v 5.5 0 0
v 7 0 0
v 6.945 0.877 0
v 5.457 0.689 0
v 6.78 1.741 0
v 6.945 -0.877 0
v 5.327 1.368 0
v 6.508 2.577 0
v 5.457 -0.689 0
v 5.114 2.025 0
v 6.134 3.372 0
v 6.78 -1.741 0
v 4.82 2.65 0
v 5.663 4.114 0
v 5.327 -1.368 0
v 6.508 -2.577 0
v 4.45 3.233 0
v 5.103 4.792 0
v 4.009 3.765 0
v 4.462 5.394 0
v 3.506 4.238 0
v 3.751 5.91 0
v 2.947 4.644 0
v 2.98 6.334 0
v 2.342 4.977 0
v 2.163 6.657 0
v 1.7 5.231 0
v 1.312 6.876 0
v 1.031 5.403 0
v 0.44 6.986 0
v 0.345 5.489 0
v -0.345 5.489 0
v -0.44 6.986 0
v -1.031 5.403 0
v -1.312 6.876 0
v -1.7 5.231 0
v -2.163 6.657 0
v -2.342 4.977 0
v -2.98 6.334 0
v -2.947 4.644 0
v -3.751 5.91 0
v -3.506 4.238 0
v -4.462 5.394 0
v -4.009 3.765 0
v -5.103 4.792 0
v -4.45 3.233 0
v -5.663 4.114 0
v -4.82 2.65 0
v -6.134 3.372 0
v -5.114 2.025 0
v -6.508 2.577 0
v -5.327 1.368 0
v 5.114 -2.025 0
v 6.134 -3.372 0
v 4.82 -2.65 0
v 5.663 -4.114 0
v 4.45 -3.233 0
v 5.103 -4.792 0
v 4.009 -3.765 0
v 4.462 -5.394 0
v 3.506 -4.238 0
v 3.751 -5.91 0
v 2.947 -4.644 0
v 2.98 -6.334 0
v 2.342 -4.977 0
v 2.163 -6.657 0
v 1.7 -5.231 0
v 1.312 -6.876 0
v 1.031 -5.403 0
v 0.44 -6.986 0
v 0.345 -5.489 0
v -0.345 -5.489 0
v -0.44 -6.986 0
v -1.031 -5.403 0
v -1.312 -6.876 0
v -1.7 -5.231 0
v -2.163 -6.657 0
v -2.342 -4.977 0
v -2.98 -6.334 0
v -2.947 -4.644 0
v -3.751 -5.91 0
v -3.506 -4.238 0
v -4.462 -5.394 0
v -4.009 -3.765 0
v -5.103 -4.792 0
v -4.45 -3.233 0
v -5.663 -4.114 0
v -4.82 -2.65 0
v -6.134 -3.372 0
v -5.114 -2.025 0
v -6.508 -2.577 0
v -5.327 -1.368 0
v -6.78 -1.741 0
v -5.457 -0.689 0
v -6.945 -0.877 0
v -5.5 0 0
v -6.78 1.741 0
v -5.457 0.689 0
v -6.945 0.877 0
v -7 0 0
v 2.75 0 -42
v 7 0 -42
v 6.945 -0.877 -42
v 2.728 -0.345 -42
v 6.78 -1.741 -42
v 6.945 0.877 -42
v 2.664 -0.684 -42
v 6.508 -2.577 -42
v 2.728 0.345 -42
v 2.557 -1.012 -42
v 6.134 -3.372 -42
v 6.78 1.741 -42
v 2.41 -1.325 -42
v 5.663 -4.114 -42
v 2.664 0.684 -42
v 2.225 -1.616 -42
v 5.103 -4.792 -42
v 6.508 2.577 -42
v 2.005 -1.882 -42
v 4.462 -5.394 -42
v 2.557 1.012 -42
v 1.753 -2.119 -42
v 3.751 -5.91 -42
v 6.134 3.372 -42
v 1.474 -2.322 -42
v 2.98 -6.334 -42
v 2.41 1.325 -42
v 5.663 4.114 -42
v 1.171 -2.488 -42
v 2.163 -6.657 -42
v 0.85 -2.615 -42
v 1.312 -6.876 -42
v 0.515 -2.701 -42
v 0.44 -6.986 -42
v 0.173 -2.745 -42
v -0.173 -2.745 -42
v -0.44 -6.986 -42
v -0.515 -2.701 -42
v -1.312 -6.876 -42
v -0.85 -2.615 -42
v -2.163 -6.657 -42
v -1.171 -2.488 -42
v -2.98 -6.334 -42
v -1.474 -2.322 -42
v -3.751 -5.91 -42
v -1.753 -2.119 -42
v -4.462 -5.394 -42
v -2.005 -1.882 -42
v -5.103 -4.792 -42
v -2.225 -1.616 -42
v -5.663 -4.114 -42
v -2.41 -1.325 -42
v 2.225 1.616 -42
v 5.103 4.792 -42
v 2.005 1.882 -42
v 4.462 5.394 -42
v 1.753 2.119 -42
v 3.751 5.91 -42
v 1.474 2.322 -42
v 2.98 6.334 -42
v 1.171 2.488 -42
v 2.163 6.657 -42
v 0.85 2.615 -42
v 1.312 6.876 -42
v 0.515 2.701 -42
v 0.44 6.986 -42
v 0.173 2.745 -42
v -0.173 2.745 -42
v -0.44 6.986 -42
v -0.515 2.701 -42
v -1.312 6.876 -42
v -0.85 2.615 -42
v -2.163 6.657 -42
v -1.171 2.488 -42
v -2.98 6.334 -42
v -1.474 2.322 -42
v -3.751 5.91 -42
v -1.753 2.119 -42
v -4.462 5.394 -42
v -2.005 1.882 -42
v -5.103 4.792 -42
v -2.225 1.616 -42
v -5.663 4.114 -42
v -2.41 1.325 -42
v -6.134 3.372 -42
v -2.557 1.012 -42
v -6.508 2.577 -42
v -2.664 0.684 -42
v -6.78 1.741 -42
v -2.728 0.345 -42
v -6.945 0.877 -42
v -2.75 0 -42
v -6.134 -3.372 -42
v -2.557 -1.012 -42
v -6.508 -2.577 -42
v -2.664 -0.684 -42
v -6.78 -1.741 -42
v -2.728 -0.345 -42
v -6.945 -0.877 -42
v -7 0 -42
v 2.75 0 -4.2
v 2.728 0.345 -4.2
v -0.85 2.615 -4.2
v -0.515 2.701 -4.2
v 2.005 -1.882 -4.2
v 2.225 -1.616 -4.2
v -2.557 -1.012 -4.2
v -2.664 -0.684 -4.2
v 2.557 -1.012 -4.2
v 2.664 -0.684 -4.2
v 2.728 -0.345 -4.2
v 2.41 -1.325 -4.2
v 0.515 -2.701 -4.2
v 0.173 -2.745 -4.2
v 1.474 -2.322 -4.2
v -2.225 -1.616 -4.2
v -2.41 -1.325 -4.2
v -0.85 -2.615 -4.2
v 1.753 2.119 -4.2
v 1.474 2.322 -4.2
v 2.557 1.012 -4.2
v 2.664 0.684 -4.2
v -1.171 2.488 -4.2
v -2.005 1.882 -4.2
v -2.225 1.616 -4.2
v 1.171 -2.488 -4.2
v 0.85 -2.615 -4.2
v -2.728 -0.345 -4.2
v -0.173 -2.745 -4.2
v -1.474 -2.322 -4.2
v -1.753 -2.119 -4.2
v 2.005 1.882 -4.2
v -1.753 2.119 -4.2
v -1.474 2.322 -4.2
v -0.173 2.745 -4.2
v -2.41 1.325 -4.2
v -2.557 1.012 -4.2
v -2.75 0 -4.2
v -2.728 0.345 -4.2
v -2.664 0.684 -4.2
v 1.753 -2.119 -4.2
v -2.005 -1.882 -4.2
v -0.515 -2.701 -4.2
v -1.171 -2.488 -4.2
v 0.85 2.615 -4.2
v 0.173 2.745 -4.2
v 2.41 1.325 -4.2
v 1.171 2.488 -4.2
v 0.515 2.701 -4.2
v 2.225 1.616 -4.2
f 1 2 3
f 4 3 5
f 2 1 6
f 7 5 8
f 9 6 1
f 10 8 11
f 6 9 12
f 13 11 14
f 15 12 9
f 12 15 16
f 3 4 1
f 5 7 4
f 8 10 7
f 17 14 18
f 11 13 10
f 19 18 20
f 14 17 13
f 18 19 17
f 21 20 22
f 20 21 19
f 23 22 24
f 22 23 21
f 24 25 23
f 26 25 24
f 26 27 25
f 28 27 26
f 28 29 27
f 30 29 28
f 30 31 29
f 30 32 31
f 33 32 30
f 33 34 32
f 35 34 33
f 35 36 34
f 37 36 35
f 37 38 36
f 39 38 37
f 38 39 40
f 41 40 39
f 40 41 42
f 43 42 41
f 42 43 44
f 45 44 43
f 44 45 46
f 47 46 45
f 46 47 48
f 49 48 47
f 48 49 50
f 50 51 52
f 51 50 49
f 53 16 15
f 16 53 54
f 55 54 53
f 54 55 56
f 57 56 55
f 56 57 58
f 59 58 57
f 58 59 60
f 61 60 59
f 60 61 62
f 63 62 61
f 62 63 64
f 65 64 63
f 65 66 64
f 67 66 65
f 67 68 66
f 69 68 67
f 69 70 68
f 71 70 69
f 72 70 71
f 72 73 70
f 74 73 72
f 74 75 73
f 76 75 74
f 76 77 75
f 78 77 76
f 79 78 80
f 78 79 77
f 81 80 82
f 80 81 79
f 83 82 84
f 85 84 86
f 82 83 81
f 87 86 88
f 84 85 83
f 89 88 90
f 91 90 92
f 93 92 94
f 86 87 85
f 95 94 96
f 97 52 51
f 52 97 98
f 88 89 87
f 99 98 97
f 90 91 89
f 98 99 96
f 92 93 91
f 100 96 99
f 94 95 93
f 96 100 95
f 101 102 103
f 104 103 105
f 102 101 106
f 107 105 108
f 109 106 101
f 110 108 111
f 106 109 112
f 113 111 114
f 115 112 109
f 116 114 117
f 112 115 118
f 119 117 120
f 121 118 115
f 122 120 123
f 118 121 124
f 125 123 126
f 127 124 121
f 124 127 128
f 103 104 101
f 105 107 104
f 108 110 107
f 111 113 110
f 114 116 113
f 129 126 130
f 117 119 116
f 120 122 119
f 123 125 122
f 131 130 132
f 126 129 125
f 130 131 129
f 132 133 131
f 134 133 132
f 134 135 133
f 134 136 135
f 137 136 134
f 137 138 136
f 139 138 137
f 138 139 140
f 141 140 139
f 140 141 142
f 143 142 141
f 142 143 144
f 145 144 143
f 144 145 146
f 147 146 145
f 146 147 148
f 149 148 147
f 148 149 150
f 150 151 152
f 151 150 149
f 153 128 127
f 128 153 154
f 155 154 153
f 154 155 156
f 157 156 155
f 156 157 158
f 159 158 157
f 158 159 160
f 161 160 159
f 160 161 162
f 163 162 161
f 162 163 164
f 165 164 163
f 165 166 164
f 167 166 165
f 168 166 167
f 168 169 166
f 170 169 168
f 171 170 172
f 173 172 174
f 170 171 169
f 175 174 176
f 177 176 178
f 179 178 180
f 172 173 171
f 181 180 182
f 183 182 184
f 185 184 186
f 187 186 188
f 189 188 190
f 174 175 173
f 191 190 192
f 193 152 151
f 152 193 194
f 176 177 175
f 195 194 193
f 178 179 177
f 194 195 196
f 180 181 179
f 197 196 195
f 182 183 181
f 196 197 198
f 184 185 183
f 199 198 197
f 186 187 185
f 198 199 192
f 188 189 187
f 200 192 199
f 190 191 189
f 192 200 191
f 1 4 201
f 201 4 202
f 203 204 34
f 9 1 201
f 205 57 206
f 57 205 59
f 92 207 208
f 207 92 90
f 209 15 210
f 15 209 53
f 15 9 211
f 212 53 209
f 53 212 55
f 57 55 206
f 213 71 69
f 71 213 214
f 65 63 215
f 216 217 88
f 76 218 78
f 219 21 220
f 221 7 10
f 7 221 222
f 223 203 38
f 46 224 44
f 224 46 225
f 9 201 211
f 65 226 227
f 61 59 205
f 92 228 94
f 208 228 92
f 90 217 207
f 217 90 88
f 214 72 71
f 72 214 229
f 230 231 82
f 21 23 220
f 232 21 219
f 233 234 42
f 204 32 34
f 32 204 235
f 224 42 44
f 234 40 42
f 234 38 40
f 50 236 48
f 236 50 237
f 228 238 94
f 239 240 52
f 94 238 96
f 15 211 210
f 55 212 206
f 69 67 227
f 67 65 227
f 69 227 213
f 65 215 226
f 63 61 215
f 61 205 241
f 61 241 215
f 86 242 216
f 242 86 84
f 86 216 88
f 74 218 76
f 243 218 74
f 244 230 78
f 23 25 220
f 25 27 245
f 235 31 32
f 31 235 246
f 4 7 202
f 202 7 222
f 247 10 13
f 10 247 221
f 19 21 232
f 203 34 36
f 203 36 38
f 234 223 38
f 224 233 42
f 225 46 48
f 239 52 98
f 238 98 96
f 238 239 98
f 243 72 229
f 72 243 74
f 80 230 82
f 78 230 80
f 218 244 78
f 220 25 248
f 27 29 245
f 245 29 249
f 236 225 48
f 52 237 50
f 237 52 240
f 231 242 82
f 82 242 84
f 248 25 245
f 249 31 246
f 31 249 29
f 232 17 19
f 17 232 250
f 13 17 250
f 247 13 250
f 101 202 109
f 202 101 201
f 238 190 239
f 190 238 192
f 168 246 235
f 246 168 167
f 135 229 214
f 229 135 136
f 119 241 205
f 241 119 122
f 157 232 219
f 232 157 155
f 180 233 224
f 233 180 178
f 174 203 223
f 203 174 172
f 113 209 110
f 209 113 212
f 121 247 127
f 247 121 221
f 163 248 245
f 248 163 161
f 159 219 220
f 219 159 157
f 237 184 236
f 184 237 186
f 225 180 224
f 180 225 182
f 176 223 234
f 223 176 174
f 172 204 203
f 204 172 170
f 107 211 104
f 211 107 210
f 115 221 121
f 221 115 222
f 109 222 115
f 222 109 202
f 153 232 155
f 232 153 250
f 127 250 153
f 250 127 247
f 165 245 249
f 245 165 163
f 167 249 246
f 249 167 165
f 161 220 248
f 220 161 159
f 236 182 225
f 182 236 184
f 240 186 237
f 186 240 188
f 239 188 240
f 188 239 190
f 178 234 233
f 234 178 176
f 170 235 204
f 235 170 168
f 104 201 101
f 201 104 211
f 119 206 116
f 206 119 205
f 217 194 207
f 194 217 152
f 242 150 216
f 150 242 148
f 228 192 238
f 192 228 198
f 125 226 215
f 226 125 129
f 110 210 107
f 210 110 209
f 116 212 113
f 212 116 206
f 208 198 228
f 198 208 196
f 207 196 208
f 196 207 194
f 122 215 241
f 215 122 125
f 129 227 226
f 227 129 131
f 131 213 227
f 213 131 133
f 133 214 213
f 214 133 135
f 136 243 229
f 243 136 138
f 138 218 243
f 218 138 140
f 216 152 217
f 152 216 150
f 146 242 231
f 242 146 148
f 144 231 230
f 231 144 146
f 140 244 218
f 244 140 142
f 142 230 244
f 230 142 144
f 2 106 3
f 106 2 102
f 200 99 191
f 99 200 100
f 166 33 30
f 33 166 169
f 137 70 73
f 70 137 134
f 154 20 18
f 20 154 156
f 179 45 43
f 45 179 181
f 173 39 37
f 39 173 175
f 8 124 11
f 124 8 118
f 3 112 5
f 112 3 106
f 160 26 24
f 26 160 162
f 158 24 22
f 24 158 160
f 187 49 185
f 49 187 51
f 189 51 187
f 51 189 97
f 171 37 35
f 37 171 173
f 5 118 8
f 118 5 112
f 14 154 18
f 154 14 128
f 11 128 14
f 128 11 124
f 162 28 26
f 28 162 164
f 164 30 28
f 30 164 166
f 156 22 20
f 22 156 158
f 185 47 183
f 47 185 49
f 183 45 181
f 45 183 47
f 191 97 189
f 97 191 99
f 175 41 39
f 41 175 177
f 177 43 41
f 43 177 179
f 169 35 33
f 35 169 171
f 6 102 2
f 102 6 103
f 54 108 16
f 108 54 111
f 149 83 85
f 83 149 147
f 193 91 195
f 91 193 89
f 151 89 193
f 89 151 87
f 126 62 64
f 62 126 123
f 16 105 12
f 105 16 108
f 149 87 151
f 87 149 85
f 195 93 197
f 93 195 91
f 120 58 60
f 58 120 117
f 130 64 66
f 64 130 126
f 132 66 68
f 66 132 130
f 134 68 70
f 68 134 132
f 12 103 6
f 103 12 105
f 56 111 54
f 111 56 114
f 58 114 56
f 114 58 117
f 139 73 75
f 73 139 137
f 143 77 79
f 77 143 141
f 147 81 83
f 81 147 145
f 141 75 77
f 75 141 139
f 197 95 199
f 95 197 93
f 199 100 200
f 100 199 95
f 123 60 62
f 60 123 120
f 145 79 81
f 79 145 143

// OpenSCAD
$fn = 50;


difference() {
	union() {
		translate(v = [0, 0, -42.0000000000]) {
			cylinder(h = 42, r = 7.0000000000);
		}
	}
	union() {
		translate(v = [0, 0, 0]) {
			rotate(a = [0, 0, 0]) {
				difference() {
					union() {
						#translate(v = [0, 0, -42.0000000000]) {
							cylinder(h = 42, r = 2.2500000000);
						}
						#translate(v = [0, 0, -4.2000000000]) {
							cylinder(h = 4.2000000000, r1 = 2.7500000000, r2 = 5.5000000000);
						}
						#translate(v = [0, 0, -42.0000000000]) {
							cylinder(h = 42, r = 2.7500000000);
						}
						#translate(v = [0, 0, -42.0000000000]) {
							cylinder(h = 42, r = 2.2500000000);
						}
					}
					union();
				}
			}
		}
	}
}
